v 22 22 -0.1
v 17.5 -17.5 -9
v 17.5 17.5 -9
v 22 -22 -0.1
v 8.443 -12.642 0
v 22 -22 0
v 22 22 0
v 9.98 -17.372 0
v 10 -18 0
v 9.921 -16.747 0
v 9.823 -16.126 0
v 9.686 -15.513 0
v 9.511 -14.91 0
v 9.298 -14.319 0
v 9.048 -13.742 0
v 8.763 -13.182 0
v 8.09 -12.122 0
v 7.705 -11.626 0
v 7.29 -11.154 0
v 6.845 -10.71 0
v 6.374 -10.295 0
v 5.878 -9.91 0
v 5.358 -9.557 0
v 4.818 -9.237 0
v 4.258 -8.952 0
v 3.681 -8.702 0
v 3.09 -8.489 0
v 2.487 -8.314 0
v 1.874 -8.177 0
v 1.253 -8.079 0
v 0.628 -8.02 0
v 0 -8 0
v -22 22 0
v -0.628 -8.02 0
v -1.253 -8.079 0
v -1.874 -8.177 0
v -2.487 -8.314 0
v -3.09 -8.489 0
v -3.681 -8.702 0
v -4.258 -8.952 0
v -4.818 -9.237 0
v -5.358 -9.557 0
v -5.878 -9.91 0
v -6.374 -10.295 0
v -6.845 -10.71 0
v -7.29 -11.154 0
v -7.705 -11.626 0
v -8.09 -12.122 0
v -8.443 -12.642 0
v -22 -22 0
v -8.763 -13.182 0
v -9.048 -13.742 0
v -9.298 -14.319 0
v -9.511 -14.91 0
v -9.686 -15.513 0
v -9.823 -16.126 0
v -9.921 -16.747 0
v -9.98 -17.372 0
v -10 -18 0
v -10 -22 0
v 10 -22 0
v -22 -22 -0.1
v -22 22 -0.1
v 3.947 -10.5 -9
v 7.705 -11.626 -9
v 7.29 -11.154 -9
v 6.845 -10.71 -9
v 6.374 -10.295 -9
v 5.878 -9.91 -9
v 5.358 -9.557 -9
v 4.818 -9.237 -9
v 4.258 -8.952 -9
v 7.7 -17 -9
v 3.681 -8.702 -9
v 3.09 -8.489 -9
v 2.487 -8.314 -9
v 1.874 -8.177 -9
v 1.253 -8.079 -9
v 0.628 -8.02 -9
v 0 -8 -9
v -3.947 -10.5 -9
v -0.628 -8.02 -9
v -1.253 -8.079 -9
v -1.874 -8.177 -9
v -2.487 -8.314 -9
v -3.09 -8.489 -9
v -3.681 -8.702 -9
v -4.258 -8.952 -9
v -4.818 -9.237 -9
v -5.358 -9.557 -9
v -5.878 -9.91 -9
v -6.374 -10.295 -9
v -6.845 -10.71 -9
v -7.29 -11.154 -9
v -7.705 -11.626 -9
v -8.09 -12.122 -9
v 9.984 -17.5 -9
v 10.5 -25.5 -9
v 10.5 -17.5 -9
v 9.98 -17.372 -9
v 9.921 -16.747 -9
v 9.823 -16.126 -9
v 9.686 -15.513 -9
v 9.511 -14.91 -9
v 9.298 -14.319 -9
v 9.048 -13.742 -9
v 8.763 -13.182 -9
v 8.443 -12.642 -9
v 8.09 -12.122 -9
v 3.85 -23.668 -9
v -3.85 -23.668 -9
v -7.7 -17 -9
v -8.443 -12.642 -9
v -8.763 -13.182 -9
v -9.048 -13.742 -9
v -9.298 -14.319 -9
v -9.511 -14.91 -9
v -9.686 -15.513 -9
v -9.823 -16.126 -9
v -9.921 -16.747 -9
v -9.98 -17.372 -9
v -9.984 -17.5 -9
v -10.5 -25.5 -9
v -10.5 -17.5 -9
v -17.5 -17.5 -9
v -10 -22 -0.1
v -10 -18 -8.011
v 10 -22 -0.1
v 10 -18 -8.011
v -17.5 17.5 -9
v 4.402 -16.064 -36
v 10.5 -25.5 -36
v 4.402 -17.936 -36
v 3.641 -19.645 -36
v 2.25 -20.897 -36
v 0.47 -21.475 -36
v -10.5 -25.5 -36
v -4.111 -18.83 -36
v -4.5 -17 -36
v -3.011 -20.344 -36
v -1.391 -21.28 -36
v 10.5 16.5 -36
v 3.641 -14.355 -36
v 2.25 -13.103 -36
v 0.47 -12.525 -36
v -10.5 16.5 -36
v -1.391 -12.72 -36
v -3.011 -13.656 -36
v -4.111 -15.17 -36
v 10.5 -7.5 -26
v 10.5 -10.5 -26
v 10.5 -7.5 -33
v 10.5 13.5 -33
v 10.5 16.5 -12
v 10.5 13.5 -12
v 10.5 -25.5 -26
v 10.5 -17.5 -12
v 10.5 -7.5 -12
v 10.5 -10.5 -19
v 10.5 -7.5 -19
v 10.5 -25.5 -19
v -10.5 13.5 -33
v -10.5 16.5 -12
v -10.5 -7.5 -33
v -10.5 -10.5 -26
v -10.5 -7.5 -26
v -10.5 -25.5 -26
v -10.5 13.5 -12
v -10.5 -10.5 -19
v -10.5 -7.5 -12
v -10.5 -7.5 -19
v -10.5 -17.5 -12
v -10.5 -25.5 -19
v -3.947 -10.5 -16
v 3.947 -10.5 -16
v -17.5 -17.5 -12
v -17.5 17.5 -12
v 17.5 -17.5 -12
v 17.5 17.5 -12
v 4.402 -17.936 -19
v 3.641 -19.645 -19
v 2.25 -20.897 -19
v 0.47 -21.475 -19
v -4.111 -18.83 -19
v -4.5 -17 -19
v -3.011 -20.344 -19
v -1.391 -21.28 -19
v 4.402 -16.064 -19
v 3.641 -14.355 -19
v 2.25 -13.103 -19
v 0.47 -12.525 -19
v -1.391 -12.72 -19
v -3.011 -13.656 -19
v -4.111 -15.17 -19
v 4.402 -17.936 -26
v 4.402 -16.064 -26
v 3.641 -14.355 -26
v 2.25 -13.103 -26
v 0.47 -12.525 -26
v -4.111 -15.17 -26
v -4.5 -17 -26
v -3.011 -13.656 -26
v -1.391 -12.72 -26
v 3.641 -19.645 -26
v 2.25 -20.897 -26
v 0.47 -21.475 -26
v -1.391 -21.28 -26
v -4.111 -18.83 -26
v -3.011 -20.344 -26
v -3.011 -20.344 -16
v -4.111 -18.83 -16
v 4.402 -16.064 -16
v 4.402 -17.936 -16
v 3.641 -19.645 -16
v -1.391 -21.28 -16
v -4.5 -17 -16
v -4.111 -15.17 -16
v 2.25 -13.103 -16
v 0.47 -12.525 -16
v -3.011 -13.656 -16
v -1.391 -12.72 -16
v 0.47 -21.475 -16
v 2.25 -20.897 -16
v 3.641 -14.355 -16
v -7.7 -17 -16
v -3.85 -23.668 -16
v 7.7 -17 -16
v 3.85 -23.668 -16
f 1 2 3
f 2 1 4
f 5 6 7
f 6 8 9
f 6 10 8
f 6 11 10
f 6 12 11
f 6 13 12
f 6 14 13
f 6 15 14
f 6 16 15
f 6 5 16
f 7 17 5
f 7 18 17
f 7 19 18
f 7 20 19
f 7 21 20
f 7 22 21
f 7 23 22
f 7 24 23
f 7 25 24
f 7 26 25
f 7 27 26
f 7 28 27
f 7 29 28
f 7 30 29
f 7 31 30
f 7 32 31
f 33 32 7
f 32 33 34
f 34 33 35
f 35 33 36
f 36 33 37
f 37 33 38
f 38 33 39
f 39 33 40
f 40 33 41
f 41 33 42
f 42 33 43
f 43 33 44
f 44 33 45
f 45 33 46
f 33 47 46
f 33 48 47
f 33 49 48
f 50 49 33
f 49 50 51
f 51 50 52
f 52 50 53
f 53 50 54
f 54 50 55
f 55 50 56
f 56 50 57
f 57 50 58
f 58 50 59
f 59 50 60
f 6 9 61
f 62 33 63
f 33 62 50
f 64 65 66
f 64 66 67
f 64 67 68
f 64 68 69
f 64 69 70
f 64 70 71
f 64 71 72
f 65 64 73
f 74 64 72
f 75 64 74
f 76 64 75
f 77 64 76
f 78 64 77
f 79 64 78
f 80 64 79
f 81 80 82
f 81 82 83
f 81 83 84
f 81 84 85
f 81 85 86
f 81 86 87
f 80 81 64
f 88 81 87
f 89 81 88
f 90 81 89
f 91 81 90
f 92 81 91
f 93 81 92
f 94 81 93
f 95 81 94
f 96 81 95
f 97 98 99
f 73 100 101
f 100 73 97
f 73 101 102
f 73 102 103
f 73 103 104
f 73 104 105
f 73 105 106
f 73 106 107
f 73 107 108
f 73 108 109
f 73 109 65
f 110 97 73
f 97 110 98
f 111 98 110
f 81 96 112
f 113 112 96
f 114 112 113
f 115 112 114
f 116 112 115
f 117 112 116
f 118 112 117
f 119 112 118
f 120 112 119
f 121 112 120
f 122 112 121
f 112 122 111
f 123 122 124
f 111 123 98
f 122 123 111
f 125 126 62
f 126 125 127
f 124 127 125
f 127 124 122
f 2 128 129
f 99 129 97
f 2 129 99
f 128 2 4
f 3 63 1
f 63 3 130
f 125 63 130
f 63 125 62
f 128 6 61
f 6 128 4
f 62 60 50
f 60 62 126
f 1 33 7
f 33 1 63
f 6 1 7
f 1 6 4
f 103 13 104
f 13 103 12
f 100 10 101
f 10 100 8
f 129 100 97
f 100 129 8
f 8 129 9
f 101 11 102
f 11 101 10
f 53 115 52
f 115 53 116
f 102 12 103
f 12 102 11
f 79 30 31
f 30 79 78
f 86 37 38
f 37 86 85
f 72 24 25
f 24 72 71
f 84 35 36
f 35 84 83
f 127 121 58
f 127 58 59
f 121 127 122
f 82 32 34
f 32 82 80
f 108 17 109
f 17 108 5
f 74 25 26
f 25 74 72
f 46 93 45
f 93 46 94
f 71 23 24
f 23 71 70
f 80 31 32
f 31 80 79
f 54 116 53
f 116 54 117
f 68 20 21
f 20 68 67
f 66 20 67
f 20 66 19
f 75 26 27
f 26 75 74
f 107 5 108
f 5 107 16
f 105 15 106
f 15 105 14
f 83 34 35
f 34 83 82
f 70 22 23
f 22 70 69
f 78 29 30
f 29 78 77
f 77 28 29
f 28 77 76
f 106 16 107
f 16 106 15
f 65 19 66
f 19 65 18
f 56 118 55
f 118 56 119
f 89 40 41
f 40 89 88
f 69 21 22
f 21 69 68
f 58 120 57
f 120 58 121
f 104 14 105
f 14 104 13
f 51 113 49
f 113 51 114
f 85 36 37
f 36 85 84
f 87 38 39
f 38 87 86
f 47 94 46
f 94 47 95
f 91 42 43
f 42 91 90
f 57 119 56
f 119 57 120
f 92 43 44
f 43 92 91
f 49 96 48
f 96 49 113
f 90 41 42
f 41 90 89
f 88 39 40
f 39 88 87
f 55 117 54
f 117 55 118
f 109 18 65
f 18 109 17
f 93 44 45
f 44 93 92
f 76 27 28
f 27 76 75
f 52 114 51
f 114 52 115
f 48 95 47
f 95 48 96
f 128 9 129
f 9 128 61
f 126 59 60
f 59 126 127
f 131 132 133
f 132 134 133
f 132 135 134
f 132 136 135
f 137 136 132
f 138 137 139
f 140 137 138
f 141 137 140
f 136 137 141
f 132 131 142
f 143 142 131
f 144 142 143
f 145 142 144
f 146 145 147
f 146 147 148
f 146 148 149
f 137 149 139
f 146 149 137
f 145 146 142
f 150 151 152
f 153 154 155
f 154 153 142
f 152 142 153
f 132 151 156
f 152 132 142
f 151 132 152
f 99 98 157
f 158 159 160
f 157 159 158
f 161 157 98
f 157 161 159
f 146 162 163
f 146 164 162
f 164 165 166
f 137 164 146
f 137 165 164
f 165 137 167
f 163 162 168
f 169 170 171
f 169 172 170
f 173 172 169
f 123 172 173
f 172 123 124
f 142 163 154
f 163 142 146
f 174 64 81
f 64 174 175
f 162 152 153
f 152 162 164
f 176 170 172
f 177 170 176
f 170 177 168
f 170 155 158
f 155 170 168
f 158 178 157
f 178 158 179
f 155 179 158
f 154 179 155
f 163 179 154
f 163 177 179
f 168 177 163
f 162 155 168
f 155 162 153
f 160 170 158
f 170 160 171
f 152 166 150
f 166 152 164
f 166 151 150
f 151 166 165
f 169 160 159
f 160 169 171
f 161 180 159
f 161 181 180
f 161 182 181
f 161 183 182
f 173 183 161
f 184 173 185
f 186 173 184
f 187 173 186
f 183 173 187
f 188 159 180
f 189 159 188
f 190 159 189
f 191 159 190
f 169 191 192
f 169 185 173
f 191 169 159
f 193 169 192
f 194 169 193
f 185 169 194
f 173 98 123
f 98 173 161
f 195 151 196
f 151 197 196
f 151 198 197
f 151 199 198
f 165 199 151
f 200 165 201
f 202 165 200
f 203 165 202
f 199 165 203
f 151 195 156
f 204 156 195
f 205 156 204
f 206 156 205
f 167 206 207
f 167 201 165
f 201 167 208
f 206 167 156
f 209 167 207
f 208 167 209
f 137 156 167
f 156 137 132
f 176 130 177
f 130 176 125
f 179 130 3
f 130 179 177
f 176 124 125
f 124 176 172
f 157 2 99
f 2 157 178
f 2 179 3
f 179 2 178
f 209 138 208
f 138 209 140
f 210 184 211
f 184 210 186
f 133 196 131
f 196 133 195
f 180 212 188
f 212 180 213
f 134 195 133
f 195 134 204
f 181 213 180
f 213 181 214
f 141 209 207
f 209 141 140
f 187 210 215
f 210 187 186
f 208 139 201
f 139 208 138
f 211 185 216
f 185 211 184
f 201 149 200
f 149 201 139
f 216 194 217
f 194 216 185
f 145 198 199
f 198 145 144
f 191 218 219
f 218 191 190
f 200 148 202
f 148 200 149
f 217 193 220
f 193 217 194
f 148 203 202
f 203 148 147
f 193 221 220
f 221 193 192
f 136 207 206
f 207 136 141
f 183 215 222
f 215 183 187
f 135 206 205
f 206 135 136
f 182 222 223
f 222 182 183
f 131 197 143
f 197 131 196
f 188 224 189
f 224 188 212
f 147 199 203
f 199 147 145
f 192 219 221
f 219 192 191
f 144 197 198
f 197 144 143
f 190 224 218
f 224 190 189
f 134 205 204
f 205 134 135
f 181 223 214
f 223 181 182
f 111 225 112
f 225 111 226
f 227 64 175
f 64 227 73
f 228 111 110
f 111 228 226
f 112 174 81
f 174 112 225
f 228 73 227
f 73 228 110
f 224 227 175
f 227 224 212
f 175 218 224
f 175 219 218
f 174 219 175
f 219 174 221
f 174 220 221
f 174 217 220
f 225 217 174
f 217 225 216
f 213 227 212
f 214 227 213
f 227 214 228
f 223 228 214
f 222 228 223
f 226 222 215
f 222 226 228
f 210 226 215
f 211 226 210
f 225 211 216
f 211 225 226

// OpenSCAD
/*
    created 31 Jan 2021
    by Matt Jones (Crazy-Logic)  
    This example code is in the public domain.
    
    This is for mounting tslot to a Hama tripod stand. 
*/

$d = 21;
UNCboltholeradius = 3.175;
UNCboltheadheight = 7;


difference()
{
        hull(){
        translate([-22,-22,-0.1])
            cube([44,44,0.1],false);
        translate([-17.5,-17.5,-9])
            cube([35,35,1],false);
    }
    translate([0,-18,-10])
        cylinder(h=12, r=10, $fn=100);
    translate([-10,-38,-10])
        cube([20,20,20]);
}



translate([-$d/2,-$d/2,-9])
rotate([0,90,0])
{
        difference(){
        cube([$d+6,$d+6,$d]);
        translate([3,3,0])
        cube([$d,$d,$d]);
        translate([10,0,0])
        cube([$d-20+6,3,$d]);
    }


    difference(){
        union(){
        translate([0,-15,0])
        cube([10,15,$d]);
        translate([$d-10+6,-15,0])
        cube([10,15,$d]);
            rotate([0,-90,0])
        translate([-7,-7,-3])
        cube([35,35,3],false);
        }
        
        translate([0,-6.5,$d/2])
        rotate([0,90,0])
        cylinder(h=$d+6, r=4.5);
        
        translate([0,-6.5,$d/2])
        rotate([0,90,0])
        cylinder(h=7, r=7.7, $fn=6);
    }
}
